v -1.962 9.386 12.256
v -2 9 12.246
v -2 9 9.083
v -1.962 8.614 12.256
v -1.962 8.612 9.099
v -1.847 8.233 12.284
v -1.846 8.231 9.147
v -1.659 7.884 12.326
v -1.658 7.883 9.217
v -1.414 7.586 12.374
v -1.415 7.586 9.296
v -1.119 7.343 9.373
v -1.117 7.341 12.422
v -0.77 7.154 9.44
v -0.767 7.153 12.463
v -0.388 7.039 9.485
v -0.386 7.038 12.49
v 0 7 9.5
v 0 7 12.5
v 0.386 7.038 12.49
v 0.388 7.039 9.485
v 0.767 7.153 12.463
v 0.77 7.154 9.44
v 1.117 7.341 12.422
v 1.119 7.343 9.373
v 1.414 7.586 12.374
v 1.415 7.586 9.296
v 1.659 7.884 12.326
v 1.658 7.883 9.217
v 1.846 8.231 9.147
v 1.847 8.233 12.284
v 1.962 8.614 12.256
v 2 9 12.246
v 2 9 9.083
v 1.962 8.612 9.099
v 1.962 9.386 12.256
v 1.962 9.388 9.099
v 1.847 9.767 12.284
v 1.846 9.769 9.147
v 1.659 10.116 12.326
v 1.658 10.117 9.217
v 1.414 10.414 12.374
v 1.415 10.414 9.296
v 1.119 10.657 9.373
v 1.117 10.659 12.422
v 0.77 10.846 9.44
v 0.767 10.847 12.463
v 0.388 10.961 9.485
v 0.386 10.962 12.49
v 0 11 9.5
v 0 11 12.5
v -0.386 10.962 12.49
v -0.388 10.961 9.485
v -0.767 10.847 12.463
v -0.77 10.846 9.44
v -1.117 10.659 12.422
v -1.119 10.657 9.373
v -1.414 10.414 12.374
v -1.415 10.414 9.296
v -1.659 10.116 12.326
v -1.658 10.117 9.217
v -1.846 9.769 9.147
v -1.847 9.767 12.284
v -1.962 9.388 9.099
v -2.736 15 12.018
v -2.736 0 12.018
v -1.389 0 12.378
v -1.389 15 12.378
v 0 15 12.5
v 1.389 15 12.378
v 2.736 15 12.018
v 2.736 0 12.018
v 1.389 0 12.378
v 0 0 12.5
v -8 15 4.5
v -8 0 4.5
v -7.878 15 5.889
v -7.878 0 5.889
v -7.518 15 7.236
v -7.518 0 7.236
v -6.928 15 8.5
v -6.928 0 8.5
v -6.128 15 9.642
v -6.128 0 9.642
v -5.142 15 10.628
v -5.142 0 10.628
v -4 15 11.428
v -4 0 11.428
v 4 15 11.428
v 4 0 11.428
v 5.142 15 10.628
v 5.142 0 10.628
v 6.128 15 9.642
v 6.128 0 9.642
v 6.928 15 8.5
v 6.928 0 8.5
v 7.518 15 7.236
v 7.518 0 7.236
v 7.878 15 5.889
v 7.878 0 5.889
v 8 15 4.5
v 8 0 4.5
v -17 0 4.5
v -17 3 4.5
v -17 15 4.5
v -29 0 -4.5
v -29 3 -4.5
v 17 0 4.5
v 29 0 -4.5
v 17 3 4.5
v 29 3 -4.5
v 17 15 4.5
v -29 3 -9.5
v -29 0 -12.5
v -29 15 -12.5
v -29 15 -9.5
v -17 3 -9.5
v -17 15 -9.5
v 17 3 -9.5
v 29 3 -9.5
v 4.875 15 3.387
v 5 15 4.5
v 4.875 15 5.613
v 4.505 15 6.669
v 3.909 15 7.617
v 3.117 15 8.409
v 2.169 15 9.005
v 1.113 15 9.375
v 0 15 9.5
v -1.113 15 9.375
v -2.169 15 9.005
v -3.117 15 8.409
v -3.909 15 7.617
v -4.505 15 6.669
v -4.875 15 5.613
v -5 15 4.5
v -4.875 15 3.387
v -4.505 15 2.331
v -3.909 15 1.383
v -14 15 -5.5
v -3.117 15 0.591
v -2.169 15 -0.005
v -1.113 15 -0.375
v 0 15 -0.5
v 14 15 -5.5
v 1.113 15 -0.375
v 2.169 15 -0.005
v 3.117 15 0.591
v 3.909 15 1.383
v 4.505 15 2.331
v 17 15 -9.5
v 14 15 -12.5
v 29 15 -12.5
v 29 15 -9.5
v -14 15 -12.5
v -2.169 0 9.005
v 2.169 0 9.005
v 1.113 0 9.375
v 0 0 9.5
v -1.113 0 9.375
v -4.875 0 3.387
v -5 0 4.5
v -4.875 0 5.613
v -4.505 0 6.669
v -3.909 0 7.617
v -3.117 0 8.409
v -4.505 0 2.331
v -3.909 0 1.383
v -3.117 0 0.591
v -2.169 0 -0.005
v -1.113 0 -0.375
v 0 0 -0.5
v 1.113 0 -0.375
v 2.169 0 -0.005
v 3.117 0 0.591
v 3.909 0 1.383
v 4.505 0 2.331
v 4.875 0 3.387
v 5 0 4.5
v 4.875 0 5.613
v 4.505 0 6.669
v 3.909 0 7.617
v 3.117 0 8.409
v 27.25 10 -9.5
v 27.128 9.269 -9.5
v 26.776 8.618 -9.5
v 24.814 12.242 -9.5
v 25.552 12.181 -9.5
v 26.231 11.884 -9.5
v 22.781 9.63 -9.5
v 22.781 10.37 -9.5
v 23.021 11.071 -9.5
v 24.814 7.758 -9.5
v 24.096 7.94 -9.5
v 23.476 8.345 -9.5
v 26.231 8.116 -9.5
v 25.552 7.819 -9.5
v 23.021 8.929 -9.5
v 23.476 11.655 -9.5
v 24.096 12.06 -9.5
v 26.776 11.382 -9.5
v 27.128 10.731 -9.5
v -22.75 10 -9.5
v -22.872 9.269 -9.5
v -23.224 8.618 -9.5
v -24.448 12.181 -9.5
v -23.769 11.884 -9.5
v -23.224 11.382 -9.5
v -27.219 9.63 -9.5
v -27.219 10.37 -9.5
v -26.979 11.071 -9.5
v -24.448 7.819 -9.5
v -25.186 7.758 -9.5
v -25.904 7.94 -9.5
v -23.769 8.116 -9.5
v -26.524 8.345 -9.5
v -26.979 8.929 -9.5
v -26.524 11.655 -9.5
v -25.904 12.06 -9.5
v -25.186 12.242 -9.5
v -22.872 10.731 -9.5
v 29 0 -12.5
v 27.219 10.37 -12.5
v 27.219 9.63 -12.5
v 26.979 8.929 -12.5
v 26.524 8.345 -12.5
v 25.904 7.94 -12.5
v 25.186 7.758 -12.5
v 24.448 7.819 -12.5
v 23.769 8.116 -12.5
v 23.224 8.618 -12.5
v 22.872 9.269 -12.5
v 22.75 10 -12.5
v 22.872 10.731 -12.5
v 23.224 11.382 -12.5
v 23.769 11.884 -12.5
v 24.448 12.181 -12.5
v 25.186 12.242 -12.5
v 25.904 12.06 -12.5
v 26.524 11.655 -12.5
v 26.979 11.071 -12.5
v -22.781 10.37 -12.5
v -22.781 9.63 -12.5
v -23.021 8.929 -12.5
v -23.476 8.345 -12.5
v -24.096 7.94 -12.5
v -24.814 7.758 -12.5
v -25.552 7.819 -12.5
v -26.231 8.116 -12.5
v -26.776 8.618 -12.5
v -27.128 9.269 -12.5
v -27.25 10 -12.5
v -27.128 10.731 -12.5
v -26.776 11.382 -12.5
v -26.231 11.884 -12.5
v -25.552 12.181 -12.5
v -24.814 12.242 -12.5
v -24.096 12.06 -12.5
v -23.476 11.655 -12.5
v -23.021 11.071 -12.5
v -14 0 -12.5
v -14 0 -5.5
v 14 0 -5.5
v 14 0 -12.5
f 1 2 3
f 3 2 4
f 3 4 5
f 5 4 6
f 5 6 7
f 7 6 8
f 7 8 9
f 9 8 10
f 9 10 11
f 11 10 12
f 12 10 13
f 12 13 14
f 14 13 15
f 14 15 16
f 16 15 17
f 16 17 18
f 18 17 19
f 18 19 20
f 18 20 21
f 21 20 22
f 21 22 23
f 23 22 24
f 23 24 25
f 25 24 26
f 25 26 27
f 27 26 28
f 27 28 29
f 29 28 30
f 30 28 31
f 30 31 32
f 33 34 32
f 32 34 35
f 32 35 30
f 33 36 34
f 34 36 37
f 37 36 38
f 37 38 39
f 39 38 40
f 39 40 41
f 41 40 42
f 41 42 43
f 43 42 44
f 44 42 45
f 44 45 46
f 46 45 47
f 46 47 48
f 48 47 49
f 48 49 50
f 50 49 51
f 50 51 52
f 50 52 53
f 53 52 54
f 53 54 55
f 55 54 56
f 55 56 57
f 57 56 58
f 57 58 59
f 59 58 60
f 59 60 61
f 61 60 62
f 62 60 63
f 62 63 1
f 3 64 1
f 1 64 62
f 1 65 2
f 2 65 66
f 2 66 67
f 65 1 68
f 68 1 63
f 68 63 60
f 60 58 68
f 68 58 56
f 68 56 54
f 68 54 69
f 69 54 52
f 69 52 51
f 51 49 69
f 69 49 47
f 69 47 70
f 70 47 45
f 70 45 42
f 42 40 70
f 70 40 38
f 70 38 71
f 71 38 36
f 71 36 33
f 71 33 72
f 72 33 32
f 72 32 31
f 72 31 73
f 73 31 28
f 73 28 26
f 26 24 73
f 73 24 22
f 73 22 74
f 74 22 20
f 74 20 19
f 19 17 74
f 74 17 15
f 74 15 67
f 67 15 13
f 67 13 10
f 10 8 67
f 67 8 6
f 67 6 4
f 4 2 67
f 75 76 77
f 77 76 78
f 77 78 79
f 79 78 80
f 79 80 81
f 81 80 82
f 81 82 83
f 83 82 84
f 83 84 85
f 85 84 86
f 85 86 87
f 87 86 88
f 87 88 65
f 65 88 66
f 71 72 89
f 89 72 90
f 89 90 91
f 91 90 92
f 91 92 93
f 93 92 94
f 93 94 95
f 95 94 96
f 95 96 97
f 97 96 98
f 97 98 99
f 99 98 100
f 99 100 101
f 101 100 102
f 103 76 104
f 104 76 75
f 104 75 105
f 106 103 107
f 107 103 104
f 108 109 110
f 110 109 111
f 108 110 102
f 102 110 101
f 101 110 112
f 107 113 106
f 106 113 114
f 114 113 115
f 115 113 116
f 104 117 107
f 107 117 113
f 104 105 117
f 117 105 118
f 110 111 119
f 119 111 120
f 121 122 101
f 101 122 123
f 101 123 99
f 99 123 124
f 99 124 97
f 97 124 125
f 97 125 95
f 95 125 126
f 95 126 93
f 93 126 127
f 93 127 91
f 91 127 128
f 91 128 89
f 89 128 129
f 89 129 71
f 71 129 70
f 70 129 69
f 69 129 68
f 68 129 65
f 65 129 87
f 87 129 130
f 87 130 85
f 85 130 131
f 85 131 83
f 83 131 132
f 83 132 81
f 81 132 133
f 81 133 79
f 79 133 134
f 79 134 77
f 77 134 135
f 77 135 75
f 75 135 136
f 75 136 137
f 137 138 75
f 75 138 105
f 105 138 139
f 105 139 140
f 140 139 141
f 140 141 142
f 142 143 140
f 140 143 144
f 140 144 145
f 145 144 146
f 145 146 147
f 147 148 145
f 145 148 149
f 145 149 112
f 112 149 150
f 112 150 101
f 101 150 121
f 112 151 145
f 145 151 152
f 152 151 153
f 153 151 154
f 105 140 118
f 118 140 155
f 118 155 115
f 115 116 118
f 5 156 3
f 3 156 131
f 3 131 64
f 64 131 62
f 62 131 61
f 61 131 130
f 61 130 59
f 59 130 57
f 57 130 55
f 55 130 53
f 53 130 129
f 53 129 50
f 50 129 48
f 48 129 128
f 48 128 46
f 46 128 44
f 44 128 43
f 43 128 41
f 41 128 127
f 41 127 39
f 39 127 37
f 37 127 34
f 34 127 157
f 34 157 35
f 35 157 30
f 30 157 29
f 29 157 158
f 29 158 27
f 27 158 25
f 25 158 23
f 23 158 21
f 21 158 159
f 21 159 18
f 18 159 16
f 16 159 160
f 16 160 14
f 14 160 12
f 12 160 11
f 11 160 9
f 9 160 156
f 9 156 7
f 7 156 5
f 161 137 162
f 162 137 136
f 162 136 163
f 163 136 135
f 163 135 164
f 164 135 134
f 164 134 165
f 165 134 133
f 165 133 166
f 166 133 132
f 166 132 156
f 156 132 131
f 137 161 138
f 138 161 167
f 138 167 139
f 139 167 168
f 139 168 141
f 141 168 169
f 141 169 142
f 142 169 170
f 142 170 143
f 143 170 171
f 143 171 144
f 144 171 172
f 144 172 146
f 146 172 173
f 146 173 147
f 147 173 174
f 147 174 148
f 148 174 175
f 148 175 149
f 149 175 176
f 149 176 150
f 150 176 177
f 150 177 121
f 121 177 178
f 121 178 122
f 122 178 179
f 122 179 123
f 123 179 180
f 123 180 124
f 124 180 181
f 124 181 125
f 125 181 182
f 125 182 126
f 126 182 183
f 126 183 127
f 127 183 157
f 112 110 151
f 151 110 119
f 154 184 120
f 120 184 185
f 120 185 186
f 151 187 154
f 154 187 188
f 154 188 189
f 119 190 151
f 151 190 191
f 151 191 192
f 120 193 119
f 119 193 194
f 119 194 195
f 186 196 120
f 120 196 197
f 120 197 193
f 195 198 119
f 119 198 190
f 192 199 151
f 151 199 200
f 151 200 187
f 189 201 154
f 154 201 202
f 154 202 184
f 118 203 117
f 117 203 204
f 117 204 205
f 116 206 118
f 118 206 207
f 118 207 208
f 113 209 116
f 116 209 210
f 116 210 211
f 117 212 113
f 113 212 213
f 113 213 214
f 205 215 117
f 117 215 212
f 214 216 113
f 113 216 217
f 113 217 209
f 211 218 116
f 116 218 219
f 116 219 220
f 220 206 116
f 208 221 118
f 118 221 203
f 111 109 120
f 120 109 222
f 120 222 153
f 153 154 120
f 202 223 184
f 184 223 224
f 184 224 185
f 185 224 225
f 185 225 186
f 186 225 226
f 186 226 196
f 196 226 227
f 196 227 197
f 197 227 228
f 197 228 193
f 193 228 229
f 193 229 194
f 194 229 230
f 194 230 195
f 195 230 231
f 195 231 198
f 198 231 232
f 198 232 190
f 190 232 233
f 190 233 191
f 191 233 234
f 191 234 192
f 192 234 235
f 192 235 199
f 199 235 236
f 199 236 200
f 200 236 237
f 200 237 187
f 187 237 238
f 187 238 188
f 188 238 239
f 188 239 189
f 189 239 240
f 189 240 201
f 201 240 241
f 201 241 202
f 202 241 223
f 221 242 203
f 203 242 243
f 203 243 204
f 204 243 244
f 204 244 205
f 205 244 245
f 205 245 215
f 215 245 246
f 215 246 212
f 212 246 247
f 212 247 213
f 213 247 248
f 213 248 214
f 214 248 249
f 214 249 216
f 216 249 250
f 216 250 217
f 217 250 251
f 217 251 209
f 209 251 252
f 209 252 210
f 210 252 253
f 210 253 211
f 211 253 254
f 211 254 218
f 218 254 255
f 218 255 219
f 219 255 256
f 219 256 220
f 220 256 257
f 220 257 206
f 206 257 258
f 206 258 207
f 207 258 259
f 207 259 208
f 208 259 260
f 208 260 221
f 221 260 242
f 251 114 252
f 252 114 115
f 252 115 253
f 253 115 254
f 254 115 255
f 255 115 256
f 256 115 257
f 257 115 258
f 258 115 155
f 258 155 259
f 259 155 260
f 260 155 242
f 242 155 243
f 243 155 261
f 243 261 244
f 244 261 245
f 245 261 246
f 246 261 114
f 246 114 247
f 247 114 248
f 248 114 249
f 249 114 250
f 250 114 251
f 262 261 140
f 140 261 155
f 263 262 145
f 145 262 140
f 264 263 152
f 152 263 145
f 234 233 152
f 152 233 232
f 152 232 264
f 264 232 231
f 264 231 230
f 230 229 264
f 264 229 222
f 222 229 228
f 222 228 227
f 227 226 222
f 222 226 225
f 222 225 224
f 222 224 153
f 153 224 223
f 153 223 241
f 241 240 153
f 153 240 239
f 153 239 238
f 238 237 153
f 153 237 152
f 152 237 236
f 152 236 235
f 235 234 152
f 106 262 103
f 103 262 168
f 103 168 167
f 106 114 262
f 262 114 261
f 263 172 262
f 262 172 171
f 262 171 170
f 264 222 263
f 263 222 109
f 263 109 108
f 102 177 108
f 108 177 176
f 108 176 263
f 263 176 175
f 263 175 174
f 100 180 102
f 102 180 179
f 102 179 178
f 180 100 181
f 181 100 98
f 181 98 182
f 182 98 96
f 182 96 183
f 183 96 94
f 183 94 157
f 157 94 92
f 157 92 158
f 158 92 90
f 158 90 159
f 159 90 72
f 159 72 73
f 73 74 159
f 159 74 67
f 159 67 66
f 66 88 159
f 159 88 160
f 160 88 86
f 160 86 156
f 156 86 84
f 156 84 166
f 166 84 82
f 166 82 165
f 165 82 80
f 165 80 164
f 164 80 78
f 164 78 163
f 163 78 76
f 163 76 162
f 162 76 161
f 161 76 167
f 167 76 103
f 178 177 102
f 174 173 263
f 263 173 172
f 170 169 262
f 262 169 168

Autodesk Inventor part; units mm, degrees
ref_plane "YZ Plane" through (0, 0, 0) normal (1, 0, 0) x (0, 1, 0)
ref_plane "XZ Plane" through (0, 0, 0) normal (0, 1, 0) x (-1, 0, 0)
ref_plane "XY Plane" through (0, 0, 0) normal (0, 0, 1) x (1, 0, 0)
sketch "Sketch1" plane through (0, 0, 0) normal (0, 1, 0) x (-1, 0, 0)
  line L0 (14, -12.5) -> (29, -12.5)
  line L1 (29, -12.5) -> (29, 12.5)
  line L2 (-29, 12.5) -> (-29, -12.5)
  line L3 (-29, -12.5) -> (-14, -12.5)
  line L4 (-14, -12.5) -> (-14, -5.5)
  line L5 (-14, -5.5) -> (14, -5.5)
  line L6 (14, -5.5) -> (14, -12.5)
  line L7 (29, 12.5) -> (-29, 12.5)
  point P0 (0, 0)
  point P1 (-29, 0)
  point P2 (0, -5.5)
  dimension "d0" = 28
  dimension "d1" = 15
  dimension "d2" = 7
  dimension "d3" = 25
extrude "Extrusion1" add sketch "Sketch1" along normal blind 15
sketch "Sketch2" plane through (-29, 0, 12.5) normal (0, 0, 1) x (1, 0, 0)
  line L0 (0, 0) -> (58, 0) projected
  line L1 (58, 0) -> (58, 15) projected
  line L2 (0, 15) -> (58, 15) projected
  line L3 (0, 0) -> (0, 15) projected
  point P0 (29, 0)
  point P1 (4, 10)
  point P2 (54, 10)
  dimension "d6" = 4
  dimension "d7" = 4
  dimension "d8" = 10
hole "Hole1" at (-25, 10, 12.5) at (25, 10, 12.5) direction (0, 0, -1) diameter 4.5 end through all
sketch "Sketch3" plane through (-29, 0, 12.5) normal (0, 0, 1) x (1, 0, 0)
  circle A0 centre (54, 10) radius 2.25 projected
  circle A1 centre (4, 10) radius 2.25 projected
  line L0 (0, 0) -> (58, 0) projected
  line L1 (58, 0) -> (58, 15) projected
  line L2 (0, 15) -> (58, 15) projected
  line L3 (0, 0) -> (0, 15) projected
  line L4 (12, 15) -> (12, 3)
  line L5 (12, 3) -> (0, 3)
  line L6 (58, 15) -> (43, 15) projected
  line L7 (46, 15) -> (46, 3)
  line L8 (46, 3) -> (58, 3)
  point P0 (29, 0)
  point P1 (15, 15)
  dimension "d16" = 3
  dimension "d17" = 3
  dimension "d18" = 3
extrude "Extrusion2" cut sketch "Sketch3" against normal blind 22 contours L3 L2 L4 L5 | L8 L7 L2 L1
sketch "Sketch4" plane through (0, 15, 0) normal (0, 1, 0) x (1, 0, 0)
  circle A0 centre (0, -4.5) radius 5
  line L0 (14, 5.5) -> (-14, 5.5) projected
  point P0 (0, 0)
  dimension "d21" = 10
  dimension "d22" = 10
extrude "Extrusion3" cut sketch "Sketch4" against normal through all
sketch "Sketch5" plane through (0, 15, 0) normal (0, 1, 0) x (1, 0, 0)
  circle A0 centre (0, -4.5) radius 5 projected
  circle A1 centre (0, -4.5) radius 8
  line L0 (-8, -4.5) -> (-17, -4.5)
  line L1 (-17, -4.5) -> (-29, 4.5)
  line L2 (-29, 12.5) -> (-29, -12.5) projected
  line L3 (8, -4.5) -> (17, -4.5)
  line L4 (17, -12.5) -> (17, 9.5) projected
  line L5 (17, -4.5) -> (29, 4.5)
  line L6 (29, -12.5) -> (29, 12.5) projected
  line L7 (17, 9.5) -> (29, 9.5) projected
  line L8 (-29, 9.5) -> (-17, 9.5) projected
  line L9 (-17, -12.5) -> (17, -12.5) projected
  line L10 (-17, -12.5) -> (-29, -12.5) projected
  line L11 (-17, -12.5) -> (-17, 9.5) projected
  line L12 (-17, 9.5) -> (-29, 9.5) projected
  line L13 (-29, -12.5) -> (-29, 9.5) projected
  line L14 (29, -12.5) -> (17, -12.5) projected
  line L15 (29, 9.5) -> (29, -12.5) projected
  line L16 (29, 9.5) -> (17, 9.5) projected
  line L17 (17, -12.5) -> (17, 9.5) projected
  point P0 (0, 0)
  point P1 (-29, -12.5)
  point P2 (0, -12.5)
  dimension "d25" = 3
  dimension "d26" = 5
  dimension "d27" = 5
  dimension "d28" = 8
  dimension "d29" = 8
extrude "Extrusion4" cut sketch "Sketch5" against normal through all contours L3 L4 L9 A1 | A1 L9 L11 L0 | L5 L6 L14 L4 | L11 L10 L2 L1
sketch "Sketch6" plane through (0, 0, 0) normal (0, 0, 1) x (1, 0, 0)
  line L0 (17, 3) -> (17, 15) projected
  point P0 (0, 0)
  point P1 (0, 9)
  point P2 (17, 9)
hole "Hole2" at (0, 9, 0) direction (0, 0, 1) diameter 4 end through all
equation "\"d7\" = d6"
equation "\"d27\" = d26"
equation "\"d29\" = d28"
properties part number "Pen Holder"
